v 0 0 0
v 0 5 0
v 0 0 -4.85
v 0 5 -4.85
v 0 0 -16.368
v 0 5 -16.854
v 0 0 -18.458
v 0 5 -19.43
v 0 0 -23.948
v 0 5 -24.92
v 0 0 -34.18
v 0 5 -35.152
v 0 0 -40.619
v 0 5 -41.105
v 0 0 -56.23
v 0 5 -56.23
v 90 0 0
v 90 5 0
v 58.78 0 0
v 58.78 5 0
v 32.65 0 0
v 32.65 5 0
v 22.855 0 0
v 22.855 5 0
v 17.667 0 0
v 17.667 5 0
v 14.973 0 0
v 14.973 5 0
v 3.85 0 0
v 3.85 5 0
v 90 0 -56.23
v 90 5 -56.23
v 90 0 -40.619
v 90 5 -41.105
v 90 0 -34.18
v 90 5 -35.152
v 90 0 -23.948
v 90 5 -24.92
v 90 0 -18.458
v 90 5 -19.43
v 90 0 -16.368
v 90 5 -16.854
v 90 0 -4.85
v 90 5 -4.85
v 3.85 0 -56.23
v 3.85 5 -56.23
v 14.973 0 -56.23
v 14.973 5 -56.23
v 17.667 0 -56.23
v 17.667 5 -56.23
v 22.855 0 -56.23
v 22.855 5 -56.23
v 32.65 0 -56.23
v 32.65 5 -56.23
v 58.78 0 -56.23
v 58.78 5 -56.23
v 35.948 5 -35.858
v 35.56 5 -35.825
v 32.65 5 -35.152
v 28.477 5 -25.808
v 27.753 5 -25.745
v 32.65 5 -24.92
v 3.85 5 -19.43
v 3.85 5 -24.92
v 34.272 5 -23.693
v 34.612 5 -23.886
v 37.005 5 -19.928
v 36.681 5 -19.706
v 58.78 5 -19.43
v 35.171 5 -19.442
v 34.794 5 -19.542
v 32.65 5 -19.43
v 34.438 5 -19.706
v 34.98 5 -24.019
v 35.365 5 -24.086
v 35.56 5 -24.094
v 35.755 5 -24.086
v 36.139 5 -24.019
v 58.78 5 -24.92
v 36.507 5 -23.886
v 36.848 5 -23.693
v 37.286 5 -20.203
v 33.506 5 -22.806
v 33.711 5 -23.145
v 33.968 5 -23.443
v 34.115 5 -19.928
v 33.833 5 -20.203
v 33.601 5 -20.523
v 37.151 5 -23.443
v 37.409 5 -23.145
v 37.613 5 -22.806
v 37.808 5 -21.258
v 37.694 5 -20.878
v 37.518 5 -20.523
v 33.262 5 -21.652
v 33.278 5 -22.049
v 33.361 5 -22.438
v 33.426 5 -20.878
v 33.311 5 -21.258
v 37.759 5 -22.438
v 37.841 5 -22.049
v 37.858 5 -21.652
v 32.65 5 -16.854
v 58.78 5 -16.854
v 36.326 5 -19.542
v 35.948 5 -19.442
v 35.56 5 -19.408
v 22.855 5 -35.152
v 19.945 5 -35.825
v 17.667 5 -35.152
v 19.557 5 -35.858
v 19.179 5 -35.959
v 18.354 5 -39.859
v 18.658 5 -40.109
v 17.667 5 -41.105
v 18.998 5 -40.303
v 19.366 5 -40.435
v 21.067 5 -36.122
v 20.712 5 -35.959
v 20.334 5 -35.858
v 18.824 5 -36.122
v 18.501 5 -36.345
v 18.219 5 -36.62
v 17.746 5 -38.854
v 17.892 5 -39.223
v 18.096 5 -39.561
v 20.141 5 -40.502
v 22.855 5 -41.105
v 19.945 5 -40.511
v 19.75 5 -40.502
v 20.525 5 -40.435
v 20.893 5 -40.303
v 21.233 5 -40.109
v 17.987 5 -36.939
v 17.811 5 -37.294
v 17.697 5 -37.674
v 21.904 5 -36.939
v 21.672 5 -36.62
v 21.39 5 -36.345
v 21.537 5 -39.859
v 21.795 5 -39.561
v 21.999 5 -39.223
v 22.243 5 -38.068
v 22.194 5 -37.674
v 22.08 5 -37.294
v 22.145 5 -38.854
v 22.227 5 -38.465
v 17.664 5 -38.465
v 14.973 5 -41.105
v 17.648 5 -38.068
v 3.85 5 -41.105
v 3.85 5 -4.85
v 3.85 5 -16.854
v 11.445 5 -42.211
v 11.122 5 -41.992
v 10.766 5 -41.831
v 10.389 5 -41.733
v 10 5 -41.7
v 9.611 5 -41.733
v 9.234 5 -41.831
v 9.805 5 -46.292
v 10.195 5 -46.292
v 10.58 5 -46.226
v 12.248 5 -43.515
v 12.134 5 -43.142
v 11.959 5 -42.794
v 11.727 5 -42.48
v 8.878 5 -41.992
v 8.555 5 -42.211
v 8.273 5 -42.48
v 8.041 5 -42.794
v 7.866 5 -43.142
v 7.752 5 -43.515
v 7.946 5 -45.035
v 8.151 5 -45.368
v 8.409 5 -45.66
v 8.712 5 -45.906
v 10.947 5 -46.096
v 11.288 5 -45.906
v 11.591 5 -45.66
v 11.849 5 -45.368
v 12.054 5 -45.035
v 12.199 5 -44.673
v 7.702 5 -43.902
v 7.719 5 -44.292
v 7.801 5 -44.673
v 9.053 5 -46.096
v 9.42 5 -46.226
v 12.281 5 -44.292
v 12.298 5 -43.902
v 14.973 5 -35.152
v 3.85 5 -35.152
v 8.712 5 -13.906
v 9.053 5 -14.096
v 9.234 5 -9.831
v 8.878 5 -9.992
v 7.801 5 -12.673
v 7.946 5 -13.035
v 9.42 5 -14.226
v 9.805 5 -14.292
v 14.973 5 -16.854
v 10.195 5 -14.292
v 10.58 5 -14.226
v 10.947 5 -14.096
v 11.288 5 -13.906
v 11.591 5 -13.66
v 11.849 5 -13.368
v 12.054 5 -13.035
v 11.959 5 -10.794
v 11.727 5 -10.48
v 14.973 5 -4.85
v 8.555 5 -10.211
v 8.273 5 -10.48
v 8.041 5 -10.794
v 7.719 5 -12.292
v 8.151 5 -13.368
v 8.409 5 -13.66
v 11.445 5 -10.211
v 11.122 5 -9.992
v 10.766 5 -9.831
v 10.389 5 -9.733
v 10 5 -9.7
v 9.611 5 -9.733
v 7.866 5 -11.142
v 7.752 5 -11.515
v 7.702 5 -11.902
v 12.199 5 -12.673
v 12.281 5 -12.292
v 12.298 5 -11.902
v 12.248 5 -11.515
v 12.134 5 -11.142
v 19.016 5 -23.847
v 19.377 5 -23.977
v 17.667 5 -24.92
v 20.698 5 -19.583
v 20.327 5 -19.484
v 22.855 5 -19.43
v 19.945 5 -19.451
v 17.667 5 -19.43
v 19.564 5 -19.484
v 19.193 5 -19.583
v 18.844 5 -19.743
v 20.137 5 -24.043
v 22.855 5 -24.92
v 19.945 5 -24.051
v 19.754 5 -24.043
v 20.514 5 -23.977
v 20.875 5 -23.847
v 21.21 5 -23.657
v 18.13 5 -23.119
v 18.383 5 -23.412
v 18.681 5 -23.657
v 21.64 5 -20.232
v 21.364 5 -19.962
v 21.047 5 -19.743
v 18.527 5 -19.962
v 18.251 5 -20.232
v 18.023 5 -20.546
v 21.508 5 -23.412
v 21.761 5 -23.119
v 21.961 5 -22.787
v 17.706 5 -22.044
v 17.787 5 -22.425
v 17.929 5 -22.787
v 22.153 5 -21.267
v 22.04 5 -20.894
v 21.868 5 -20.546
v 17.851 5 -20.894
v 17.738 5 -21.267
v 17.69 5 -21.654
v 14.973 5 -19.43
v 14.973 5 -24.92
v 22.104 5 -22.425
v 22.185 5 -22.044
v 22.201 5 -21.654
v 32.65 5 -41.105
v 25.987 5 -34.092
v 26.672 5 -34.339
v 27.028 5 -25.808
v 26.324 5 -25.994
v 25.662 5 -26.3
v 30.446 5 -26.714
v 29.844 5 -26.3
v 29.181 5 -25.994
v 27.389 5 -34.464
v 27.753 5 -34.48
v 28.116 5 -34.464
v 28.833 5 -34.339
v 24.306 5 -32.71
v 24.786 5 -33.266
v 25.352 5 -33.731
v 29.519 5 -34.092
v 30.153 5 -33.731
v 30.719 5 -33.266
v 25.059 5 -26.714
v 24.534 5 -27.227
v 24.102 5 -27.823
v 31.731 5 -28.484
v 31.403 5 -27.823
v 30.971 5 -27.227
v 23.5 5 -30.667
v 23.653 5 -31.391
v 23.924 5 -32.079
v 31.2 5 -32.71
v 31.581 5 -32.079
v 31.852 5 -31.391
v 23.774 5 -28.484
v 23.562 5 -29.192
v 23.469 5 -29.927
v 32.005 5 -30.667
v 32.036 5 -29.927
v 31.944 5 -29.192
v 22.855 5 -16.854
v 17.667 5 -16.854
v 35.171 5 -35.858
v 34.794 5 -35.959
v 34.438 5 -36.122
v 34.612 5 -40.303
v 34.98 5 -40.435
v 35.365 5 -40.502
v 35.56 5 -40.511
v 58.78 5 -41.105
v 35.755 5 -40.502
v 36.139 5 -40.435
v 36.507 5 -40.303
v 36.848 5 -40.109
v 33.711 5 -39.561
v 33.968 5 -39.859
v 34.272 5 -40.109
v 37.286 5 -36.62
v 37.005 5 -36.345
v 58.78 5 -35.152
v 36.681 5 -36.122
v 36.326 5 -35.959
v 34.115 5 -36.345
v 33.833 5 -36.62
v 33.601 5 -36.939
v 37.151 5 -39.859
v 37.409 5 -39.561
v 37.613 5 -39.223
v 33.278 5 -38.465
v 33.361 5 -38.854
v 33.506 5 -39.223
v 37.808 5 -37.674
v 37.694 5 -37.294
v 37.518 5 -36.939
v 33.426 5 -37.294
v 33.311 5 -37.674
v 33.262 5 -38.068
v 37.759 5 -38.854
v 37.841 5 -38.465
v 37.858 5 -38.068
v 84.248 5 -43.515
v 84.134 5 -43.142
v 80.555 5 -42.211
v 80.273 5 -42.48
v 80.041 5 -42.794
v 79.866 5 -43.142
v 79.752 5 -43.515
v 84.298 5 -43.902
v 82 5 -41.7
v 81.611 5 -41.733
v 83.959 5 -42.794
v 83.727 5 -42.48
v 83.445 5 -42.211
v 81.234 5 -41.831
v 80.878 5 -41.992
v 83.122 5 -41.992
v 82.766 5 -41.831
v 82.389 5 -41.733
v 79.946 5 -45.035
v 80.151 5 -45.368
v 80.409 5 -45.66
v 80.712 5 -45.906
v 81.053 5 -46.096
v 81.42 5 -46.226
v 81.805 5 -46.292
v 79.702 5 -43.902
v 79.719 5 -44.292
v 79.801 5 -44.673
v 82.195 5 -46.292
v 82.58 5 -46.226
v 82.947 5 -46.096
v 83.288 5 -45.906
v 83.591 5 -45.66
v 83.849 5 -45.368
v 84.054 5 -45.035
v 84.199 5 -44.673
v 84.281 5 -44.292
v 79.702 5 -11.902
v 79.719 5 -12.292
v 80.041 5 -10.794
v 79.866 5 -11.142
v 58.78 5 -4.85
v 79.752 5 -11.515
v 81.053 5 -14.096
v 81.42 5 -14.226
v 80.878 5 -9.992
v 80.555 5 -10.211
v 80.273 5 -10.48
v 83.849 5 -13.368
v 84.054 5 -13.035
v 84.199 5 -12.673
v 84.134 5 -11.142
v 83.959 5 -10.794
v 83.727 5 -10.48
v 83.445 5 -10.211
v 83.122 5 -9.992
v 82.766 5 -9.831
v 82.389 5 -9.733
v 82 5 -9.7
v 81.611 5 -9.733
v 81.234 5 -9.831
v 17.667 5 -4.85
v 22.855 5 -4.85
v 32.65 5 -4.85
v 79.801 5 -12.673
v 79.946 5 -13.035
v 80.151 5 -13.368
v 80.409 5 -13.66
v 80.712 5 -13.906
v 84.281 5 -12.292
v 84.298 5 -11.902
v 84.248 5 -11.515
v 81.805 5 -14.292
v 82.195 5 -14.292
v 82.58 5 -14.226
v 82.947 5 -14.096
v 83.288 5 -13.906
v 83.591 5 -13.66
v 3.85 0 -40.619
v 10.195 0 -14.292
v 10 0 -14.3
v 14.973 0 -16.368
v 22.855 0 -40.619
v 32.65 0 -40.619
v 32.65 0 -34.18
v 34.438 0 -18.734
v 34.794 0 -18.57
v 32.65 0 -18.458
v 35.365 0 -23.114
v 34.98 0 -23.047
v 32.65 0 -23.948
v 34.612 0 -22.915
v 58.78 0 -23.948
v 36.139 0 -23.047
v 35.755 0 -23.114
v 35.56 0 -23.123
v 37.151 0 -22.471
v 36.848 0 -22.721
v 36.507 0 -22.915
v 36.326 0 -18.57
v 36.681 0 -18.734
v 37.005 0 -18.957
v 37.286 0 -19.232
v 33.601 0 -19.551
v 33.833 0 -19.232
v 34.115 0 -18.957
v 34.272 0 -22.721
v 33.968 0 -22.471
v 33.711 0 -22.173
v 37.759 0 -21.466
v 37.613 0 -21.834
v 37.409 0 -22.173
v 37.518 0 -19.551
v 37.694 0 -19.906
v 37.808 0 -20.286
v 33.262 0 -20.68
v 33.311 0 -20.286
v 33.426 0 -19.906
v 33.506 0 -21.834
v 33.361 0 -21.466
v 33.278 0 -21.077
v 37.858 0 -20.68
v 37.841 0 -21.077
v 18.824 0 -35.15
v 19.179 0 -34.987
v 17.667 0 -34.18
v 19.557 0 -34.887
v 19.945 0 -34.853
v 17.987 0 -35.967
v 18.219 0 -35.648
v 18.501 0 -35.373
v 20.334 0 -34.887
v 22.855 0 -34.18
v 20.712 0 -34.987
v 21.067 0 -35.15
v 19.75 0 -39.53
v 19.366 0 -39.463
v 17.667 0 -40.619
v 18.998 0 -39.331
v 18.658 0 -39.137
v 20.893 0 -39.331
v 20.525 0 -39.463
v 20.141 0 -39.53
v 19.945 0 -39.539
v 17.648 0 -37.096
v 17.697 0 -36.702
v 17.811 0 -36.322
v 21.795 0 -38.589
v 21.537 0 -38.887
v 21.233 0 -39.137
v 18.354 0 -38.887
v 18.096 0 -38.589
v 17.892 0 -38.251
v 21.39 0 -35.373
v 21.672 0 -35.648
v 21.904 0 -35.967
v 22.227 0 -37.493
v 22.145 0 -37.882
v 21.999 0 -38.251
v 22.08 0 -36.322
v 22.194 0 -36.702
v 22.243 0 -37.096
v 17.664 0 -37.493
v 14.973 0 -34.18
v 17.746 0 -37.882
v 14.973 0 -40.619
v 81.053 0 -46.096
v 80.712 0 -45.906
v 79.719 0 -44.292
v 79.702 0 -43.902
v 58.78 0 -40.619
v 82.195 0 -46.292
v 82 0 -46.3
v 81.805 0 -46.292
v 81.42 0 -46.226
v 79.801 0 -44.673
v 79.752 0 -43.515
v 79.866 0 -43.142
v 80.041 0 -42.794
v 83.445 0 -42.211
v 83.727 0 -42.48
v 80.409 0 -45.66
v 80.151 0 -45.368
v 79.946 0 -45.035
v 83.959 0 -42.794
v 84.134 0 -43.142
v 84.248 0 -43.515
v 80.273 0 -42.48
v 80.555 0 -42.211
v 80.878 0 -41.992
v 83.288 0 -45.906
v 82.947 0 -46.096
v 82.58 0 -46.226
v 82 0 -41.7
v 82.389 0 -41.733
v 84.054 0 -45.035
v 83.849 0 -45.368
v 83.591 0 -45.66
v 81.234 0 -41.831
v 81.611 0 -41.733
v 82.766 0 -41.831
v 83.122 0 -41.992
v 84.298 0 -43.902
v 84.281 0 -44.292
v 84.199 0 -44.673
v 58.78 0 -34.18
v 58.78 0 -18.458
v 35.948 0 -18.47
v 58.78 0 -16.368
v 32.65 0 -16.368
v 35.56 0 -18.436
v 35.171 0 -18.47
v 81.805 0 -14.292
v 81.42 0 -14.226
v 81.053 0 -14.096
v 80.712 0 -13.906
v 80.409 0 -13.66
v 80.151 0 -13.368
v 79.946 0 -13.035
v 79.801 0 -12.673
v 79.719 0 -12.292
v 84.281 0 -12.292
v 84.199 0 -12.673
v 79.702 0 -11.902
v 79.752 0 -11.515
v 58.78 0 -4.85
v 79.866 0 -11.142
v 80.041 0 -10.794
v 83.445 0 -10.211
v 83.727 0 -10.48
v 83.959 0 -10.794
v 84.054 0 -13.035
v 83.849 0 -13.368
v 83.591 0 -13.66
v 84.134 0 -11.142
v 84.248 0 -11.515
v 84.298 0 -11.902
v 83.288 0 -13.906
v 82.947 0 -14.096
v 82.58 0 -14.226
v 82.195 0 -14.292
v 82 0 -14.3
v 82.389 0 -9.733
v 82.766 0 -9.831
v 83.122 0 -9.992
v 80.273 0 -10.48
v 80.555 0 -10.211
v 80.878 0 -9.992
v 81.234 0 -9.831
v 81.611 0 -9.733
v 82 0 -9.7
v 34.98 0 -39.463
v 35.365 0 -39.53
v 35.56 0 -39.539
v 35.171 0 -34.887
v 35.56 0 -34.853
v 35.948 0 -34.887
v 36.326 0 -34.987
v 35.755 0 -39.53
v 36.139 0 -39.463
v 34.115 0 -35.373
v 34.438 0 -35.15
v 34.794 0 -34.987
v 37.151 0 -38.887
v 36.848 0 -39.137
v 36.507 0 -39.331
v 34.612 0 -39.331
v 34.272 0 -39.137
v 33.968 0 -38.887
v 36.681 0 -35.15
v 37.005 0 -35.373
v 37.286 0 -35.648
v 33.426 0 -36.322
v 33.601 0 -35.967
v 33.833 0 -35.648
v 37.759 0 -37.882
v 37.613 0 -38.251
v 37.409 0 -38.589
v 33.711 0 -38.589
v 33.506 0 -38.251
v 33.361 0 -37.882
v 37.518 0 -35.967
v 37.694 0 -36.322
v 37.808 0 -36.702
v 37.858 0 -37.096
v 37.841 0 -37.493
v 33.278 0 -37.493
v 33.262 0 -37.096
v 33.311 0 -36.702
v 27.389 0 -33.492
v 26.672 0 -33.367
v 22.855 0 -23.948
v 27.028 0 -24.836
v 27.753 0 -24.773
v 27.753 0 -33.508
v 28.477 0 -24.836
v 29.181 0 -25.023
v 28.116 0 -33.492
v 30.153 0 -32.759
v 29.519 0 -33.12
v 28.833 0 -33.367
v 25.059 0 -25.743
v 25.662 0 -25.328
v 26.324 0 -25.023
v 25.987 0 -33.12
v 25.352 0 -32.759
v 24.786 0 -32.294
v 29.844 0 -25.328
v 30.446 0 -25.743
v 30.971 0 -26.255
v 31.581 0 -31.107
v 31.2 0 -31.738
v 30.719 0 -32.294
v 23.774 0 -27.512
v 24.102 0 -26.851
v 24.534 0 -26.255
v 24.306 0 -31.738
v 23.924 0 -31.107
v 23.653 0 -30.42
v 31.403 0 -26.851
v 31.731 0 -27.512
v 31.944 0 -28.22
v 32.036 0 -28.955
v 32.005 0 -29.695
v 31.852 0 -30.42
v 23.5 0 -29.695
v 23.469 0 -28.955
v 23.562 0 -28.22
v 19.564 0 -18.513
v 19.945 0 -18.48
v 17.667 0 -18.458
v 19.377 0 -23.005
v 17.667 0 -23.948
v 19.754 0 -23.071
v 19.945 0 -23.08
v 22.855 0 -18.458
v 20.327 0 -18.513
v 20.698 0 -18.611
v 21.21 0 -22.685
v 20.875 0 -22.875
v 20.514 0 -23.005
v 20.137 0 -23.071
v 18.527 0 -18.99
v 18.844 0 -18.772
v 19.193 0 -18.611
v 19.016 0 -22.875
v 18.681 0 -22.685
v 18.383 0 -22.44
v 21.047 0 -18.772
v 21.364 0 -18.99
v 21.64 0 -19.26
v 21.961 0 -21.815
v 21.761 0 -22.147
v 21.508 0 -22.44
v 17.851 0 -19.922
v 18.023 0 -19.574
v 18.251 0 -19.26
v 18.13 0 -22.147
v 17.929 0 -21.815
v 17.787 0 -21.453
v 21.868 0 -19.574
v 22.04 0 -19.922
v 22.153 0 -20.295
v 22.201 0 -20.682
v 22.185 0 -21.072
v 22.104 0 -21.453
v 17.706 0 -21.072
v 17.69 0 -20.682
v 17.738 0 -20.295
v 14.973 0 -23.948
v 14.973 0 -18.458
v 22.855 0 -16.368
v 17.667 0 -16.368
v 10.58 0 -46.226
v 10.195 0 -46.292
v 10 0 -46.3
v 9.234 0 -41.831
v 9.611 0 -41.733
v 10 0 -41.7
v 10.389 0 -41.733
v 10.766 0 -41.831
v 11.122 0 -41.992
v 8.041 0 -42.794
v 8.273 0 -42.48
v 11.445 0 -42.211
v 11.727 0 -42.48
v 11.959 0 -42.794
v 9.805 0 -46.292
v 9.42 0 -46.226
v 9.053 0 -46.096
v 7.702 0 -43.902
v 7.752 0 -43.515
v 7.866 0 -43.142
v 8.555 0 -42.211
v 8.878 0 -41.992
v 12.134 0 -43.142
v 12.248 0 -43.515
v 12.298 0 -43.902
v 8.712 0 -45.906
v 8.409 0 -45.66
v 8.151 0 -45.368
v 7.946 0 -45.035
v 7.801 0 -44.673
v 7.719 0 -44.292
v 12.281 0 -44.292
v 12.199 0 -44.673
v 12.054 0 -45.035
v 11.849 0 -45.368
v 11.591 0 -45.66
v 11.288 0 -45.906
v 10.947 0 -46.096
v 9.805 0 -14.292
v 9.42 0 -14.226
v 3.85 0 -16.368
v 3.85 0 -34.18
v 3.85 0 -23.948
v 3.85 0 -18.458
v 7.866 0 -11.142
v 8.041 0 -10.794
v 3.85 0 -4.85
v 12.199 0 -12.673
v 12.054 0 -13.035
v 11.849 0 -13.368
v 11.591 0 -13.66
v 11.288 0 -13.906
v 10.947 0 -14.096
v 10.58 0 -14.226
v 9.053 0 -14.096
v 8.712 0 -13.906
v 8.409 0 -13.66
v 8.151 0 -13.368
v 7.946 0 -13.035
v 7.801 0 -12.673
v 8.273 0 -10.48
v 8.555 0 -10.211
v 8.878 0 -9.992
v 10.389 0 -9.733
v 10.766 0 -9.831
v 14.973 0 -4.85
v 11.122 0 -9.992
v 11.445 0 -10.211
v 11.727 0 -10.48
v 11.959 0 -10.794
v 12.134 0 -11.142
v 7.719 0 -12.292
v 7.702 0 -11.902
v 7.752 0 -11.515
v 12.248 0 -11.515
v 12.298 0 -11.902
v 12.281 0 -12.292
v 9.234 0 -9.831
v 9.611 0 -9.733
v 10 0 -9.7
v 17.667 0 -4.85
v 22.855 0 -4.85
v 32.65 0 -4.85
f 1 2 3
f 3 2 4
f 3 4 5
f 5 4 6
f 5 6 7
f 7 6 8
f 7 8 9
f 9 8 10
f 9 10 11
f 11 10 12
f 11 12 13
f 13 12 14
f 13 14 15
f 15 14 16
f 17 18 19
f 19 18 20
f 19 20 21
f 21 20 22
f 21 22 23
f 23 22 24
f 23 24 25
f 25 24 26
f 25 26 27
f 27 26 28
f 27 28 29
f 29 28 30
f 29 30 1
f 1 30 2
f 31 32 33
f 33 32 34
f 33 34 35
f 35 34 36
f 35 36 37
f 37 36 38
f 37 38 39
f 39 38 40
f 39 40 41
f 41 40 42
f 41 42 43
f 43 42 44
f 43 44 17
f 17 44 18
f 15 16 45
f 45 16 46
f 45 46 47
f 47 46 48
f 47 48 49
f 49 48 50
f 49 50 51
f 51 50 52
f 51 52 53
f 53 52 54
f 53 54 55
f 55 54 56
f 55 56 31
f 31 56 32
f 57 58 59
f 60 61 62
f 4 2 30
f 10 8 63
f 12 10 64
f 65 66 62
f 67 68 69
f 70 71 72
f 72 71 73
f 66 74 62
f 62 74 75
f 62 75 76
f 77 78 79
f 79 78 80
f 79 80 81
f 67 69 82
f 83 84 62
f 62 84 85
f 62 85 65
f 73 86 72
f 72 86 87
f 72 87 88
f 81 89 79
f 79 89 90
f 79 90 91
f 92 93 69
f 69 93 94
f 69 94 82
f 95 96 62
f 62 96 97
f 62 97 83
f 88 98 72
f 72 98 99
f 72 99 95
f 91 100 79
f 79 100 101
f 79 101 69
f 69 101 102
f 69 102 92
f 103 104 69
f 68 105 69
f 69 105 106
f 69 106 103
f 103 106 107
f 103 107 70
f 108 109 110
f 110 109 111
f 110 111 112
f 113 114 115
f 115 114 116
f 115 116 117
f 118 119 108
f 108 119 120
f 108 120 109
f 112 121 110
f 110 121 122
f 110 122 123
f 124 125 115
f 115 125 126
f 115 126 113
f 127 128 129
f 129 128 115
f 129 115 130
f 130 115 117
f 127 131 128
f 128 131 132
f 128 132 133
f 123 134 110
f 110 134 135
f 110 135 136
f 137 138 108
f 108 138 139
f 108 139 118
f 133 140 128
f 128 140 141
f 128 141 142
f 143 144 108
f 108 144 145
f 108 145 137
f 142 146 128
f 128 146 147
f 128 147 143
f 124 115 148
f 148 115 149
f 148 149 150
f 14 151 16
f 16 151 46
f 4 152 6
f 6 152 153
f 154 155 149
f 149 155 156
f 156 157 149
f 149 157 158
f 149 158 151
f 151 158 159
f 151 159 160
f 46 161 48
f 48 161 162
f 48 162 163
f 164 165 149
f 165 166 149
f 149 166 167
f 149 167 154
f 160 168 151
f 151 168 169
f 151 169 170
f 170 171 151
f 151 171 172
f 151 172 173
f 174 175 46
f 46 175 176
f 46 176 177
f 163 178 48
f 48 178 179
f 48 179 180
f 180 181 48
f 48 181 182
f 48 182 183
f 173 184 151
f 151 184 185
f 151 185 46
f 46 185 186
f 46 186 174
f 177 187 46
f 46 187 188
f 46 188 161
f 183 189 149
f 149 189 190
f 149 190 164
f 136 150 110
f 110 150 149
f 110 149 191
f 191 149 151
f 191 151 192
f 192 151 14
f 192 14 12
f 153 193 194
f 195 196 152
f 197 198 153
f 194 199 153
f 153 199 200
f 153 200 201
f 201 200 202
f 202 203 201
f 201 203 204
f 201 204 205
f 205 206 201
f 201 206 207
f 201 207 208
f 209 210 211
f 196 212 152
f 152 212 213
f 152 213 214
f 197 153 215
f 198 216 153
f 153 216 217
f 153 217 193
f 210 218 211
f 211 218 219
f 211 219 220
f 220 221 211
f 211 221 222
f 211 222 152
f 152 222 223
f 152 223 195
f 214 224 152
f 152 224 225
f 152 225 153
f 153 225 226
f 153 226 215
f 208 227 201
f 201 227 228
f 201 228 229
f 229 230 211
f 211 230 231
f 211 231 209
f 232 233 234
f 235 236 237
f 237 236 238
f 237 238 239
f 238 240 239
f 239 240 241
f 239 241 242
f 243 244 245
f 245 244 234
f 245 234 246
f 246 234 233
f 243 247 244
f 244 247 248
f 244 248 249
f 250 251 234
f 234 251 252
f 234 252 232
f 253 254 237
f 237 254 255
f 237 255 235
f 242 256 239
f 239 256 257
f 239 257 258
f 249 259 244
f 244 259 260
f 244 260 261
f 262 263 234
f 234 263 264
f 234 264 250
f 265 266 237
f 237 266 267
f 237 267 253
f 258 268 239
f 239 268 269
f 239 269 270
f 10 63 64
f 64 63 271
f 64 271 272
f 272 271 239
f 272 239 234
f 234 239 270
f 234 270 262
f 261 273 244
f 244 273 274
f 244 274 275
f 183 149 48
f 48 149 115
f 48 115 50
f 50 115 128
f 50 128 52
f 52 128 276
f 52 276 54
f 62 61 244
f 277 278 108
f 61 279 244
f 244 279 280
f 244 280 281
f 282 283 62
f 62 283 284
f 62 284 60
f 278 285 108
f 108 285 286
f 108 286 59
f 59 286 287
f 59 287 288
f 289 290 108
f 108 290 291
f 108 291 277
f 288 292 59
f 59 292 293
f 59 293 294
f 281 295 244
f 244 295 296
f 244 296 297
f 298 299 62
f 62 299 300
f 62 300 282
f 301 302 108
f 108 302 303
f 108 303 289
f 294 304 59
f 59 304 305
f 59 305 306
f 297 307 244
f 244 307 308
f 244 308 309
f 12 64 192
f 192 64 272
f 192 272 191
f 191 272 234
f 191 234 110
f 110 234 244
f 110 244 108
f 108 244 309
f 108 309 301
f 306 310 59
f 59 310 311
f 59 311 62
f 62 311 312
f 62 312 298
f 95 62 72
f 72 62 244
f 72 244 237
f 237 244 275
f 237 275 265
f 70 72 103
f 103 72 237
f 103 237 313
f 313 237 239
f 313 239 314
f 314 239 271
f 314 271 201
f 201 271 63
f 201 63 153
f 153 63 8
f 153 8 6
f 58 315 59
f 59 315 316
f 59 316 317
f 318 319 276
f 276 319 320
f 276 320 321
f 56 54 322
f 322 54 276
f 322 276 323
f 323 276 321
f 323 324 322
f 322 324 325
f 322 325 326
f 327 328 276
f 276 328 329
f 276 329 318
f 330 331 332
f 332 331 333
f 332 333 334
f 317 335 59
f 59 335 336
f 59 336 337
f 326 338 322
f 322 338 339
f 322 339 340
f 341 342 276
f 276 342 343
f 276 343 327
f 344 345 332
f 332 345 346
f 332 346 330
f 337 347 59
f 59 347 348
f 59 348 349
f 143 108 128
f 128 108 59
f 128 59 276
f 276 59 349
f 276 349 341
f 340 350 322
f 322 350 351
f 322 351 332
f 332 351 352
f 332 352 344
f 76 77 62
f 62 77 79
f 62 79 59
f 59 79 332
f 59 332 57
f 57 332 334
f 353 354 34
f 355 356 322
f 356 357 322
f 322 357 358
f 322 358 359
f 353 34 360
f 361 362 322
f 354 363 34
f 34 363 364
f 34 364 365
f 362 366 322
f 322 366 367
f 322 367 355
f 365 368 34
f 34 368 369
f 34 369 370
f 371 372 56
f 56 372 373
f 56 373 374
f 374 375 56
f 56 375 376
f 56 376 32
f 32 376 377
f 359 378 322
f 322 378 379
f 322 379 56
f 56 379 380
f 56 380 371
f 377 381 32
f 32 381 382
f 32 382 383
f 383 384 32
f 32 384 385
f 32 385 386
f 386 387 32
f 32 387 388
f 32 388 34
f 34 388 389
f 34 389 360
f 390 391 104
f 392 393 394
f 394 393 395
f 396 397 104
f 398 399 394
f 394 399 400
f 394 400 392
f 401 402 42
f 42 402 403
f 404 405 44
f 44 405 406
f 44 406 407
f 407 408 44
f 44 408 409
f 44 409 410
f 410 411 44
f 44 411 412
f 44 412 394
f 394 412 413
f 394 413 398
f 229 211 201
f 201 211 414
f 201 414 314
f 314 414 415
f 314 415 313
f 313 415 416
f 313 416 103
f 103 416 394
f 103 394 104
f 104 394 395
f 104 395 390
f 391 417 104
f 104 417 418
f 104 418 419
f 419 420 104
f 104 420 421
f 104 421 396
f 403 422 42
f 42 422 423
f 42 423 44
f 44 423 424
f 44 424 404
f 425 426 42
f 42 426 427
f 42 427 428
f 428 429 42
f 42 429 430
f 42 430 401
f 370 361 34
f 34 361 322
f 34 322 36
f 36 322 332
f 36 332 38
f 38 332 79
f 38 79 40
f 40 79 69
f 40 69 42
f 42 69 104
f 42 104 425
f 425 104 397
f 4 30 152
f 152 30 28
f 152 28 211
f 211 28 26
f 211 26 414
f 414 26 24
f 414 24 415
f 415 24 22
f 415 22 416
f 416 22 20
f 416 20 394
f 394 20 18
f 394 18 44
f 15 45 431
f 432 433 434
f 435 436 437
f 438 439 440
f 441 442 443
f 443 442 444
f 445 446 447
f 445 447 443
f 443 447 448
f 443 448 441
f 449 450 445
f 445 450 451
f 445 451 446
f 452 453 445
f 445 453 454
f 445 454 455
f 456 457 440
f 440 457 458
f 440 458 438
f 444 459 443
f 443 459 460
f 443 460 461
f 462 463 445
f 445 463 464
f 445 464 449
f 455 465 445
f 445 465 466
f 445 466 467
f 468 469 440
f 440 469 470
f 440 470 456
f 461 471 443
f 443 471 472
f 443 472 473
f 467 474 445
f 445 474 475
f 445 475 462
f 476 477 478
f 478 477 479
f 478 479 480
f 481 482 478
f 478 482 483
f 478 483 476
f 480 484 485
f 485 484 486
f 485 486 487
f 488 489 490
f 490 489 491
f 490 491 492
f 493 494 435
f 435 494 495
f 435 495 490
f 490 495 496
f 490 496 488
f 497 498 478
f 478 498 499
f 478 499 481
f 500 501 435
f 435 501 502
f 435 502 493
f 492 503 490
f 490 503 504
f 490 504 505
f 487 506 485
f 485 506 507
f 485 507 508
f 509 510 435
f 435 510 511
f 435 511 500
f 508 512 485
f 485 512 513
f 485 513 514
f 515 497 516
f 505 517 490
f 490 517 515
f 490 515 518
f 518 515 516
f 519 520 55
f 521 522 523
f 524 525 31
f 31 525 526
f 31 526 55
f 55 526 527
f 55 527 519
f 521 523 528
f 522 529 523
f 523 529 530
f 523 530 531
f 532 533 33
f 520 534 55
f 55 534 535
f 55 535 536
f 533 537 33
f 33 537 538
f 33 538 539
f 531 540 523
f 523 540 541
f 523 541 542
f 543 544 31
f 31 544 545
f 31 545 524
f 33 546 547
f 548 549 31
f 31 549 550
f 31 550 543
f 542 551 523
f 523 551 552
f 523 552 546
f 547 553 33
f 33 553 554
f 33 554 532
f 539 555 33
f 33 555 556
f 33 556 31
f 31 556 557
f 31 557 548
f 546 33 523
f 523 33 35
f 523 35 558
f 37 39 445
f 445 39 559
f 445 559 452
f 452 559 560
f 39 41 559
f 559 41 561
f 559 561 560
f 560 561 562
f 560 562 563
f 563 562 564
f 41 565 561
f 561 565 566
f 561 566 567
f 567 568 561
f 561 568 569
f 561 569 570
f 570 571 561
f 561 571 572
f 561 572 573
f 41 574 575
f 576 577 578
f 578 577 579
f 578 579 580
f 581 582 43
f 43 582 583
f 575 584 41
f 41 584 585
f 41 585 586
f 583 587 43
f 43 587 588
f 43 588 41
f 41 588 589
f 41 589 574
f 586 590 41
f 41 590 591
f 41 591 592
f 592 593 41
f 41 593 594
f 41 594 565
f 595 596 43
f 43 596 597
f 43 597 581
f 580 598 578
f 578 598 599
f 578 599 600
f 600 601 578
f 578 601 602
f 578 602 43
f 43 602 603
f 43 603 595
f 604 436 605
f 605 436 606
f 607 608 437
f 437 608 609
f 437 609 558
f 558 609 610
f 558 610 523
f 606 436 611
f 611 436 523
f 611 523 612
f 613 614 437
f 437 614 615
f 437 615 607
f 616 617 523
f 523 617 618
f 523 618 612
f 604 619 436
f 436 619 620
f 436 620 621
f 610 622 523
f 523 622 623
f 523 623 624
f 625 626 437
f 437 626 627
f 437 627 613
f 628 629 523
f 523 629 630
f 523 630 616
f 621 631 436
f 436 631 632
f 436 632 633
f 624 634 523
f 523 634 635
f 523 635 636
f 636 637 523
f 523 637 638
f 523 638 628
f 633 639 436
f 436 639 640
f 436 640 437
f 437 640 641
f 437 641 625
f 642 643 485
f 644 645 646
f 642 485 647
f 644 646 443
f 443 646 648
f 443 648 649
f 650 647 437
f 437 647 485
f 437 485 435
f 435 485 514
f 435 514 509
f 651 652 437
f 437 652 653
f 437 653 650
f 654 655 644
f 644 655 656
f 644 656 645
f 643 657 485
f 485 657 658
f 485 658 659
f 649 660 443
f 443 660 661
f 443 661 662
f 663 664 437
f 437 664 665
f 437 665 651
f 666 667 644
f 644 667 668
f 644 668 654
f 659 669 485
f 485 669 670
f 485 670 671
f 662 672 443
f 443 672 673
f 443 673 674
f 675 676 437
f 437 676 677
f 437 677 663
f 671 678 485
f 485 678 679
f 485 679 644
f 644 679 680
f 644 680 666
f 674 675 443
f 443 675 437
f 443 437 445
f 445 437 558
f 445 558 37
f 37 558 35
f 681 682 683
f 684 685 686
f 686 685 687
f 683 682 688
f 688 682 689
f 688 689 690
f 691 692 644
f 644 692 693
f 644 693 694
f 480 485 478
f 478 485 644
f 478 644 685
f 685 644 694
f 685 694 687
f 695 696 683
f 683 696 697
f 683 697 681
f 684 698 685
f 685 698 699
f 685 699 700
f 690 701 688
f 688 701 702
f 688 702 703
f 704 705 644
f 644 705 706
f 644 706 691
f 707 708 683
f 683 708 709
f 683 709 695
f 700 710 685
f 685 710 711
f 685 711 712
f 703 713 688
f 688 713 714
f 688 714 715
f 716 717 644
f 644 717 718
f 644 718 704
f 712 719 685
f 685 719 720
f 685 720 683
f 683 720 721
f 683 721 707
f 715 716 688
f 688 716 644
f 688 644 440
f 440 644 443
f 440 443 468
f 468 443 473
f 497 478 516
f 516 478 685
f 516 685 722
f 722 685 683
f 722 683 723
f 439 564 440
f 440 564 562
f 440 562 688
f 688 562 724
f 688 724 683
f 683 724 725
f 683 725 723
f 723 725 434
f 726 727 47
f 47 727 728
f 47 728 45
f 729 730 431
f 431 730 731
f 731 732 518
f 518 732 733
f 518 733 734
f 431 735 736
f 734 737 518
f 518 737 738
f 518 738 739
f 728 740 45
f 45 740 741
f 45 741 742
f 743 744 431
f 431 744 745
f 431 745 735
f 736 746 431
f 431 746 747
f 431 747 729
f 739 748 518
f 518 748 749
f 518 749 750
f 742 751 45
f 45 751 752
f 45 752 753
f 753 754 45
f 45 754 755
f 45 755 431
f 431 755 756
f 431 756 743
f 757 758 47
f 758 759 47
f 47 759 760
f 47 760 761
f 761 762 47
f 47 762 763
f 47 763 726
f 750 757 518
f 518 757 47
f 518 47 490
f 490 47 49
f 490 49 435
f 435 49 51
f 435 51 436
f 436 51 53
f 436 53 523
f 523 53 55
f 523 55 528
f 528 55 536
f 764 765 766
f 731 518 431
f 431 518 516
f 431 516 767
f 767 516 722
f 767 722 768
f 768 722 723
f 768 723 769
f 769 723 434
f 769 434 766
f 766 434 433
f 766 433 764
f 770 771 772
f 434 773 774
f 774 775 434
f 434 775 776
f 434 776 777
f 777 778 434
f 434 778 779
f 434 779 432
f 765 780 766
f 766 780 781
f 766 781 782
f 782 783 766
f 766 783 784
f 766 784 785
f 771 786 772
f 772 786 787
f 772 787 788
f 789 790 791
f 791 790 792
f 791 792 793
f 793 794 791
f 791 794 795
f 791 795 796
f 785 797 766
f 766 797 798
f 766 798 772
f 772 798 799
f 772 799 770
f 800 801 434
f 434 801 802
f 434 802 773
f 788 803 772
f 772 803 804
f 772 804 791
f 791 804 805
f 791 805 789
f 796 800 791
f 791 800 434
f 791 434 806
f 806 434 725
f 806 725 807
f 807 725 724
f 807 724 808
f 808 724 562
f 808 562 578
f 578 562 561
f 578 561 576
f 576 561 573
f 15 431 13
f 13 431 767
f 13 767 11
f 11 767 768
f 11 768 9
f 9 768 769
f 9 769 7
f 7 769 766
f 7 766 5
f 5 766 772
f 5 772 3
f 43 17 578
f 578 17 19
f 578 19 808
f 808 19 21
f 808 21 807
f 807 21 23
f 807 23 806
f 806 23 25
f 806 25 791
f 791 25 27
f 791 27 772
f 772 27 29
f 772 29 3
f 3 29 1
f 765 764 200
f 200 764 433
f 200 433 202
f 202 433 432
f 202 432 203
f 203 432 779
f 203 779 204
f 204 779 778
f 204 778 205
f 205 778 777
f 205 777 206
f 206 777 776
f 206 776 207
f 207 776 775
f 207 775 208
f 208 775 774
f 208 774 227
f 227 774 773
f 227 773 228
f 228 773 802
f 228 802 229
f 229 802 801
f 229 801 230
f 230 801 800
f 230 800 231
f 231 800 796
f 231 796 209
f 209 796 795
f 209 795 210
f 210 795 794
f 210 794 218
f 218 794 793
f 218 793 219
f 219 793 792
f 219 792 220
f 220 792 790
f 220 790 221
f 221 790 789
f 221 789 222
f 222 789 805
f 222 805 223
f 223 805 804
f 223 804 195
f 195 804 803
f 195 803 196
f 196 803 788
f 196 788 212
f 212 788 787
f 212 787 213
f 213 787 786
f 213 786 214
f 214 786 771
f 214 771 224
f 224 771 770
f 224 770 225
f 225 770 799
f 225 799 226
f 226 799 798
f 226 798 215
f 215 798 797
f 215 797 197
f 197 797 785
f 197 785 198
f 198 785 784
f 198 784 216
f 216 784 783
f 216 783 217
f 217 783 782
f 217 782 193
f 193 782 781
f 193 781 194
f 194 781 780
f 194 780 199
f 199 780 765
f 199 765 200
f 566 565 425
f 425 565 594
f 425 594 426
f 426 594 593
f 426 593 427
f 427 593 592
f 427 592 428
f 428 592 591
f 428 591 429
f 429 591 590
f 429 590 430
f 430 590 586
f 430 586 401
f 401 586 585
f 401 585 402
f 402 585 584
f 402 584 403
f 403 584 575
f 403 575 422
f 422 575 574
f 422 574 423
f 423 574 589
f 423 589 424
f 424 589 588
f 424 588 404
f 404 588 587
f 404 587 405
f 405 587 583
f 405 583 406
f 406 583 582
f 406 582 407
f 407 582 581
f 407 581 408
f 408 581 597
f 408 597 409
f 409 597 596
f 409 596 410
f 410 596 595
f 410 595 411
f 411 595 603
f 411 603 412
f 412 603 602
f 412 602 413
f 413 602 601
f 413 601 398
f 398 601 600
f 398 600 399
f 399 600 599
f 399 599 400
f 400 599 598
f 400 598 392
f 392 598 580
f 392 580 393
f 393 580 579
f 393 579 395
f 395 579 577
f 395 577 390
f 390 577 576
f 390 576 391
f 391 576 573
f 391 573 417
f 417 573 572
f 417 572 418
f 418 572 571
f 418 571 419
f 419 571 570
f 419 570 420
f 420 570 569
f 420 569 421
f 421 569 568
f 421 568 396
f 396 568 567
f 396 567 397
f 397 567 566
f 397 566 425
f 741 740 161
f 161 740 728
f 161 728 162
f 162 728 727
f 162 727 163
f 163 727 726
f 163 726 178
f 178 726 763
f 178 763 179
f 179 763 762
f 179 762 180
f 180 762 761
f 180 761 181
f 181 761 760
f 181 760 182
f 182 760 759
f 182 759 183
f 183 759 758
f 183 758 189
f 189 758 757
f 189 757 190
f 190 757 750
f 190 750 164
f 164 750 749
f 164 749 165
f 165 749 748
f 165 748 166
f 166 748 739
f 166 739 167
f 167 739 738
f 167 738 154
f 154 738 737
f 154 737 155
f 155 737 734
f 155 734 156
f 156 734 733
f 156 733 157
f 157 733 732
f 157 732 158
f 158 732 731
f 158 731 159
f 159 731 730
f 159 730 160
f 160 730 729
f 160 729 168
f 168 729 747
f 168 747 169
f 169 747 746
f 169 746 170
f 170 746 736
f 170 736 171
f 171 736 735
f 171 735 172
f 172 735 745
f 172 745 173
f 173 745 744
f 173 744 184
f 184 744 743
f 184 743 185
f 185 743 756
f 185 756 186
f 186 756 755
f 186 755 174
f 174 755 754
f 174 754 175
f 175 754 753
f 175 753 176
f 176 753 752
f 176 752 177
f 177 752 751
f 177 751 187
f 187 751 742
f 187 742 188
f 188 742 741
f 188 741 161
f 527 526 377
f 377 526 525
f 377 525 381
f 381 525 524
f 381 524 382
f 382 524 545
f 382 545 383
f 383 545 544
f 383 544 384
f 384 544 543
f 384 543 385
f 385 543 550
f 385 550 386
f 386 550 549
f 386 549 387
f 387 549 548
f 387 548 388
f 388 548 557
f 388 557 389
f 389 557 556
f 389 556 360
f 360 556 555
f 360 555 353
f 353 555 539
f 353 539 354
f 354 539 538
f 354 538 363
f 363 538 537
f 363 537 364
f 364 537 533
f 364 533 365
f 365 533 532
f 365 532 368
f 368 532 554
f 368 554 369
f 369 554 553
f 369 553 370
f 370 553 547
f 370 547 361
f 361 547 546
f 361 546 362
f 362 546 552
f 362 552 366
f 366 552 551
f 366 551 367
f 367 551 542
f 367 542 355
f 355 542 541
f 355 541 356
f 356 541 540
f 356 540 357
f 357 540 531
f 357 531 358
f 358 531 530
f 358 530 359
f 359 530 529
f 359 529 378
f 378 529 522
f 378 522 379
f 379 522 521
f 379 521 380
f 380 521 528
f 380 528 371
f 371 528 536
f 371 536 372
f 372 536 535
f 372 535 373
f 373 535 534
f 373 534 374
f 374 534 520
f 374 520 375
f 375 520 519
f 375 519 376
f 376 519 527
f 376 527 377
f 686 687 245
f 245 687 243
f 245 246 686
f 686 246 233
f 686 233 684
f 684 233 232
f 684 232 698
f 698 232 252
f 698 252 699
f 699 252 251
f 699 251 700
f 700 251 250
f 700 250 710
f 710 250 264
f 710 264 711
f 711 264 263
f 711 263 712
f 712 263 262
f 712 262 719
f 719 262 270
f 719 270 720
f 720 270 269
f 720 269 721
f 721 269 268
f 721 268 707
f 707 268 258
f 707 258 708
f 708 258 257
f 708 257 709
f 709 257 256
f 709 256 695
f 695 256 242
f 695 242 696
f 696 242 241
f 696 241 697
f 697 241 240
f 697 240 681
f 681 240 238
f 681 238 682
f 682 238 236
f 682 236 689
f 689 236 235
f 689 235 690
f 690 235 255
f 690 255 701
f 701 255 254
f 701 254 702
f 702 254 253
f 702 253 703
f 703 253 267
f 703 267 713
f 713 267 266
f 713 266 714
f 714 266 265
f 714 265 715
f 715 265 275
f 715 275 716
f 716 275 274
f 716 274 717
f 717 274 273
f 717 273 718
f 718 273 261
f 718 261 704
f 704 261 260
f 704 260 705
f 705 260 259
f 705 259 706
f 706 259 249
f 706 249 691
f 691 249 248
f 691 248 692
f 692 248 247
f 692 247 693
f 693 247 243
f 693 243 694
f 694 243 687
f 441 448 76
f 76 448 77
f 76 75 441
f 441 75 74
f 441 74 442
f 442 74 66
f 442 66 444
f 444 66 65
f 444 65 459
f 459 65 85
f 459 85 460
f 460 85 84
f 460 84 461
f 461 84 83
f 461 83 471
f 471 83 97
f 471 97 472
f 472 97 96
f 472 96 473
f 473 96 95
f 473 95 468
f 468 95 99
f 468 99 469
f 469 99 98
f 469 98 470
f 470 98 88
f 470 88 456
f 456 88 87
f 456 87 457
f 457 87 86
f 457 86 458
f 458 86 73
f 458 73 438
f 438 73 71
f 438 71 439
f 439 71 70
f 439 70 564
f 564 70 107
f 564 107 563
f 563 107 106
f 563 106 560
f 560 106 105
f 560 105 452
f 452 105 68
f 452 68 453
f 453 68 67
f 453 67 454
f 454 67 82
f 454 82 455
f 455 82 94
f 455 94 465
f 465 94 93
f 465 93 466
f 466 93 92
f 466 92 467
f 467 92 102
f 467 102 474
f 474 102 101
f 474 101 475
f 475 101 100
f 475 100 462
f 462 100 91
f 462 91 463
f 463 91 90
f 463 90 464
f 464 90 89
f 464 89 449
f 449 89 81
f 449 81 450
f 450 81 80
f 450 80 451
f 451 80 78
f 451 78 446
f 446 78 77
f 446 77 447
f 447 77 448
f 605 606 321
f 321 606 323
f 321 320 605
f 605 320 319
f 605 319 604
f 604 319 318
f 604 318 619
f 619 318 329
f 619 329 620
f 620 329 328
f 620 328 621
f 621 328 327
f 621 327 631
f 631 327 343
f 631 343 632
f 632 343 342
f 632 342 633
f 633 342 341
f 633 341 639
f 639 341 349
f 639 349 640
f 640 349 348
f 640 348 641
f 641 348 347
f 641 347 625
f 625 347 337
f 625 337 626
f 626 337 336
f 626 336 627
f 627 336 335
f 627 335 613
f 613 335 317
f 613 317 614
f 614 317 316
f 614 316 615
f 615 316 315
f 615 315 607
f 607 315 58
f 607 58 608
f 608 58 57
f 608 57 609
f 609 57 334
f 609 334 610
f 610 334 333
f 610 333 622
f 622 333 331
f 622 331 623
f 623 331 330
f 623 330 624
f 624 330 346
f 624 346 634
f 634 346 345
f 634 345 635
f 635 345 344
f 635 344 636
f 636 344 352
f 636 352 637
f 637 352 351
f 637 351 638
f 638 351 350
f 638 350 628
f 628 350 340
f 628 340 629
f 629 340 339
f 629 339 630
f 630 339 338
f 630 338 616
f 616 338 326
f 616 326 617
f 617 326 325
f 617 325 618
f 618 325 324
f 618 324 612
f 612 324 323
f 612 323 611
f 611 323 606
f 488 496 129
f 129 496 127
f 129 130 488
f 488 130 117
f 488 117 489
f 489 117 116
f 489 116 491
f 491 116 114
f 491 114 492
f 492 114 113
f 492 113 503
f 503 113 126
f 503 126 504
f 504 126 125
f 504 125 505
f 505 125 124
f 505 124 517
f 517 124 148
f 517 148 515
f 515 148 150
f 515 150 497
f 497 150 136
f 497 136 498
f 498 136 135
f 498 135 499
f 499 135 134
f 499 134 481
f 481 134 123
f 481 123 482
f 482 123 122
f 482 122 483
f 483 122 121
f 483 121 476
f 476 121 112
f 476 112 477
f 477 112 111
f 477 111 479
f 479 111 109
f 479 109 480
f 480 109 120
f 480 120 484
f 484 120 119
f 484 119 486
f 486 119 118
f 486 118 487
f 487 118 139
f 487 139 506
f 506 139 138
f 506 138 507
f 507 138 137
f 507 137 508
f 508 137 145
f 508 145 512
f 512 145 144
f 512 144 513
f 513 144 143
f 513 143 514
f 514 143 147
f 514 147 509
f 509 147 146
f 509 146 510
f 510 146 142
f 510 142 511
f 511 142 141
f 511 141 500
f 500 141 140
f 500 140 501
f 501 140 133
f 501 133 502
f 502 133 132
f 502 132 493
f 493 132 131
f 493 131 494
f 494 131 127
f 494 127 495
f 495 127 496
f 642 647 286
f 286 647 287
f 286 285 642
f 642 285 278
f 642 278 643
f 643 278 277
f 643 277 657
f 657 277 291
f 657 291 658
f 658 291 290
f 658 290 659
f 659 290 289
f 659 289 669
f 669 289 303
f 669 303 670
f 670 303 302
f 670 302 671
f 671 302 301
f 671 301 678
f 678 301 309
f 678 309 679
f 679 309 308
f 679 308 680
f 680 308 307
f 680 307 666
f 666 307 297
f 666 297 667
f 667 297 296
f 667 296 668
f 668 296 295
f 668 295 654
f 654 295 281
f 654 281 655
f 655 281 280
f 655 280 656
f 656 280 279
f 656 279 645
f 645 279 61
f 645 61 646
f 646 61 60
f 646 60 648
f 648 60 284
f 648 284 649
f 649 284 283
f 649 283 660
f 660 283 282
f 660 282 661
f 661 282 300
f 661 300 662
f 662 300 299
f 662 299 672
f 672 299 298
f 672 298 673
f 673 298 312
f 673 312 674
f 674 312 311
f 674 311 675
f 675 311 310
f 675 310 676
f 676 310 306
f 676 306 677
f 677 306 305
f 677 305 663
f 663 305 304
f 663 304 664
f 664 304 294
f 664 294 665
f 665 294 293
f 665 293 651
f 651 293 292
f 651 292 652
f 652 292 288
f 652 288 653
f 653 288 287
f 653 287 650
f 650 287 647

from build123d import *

# Parameters (mm, degrees)
SKETCH1_W           = 90
SKETCH1_H           = 56.23
BOSS_EXTRUDE1_DEPTH = 5
SKETCH2_R           = 2.3
CUT_EXTRUDE1_DEPTH  = 15
SKETCH7_R           = 2.3
CUT_EXTRUDE3_DEPTH  = 45
SKETCH12_R          = 2.257742522
SKETCH12_R_2        = 2.3
SKETCH12_R_3        = 4.287283452
CUT_EXTRUDE5_DEPTH  = 20


with BuildPart() as part:
    # Sketch1 → Boss-Extrude1 (new body)
    with BuildSketch(Plane(origin=(0, 0, 0), x_dir=(1, 0, 0), z_dir=(0, 1, 0))):
        with Locations((45, 28.115)):
            Rectangle(SKETCH1_W, SKETCH1_H)
    extrude(amount=BOSS_EXTRUDE1_DEPTH)

    # Sketch2 → Cut-Extrude1 (cut)
    with BuildSketch(Plane(origin=(0, 5, 0), x_dir=(1, 0, 0), z_dir=(0, 1, 0))):
        with Locations(Location((82, 12, 0), (0, 0, 270))):
            Circle(SKETCH2_R)
        with Locations(Location((10, 12, 0), (0, 0, 270))):
            Circle(SKETCH2_R)
    extrude(amount=-CUT_EXTRUDE1_DEPTH, mode=Mode.SUBTRACT)

    # Sketch7 → Cut-Extrude3 (cut)
    with BuildSketch(Plane(origin=(0, 5, 0), x_dir=(1, 0, 0), z_dir=(0, 1, 0))):
        with Locations(Location((82, 44, 0), (0, 0, 270))):
            Circle(SKETCH7_R)
        with Locations(Location((10, 44, 0), (0, 0, 270))):
            Circle(SKETCH7_R)
    extrude(amount=-CUT_EXTRUDE3_DEPTH, mode=Mode.SUBTRACT)

    # Sketch12 → Cut-Extrude5 (cut)
    with BuildSketch(Plane(origin=(0, 15.35002401, -2.983742412), x_dir=(-1, 0, 0), z_dir=(0, 0.9816271834476639, -0.19080899537654525))):
        with Locations(Location((-19.945482257, -20.397734662, 0), (0, 0, 270))):
            Circle(SKETCH12_R)
        with Locations(Location((-35.559756703, -20.397734662, 0), (0, 0, 270))):
            Circle(SKETCH12_R_2)
        with Locations(Location((-35.559756703, -36.512466621, 0), (0, 0, 270))):
            Circle(SKETCH12_R_2)
        with Locations(Location((-19.945482257, -36.512466621, 0), (0, 0, 270))):
            Circle(SKETCH12_R_2)
        with Locations(Location((-27.75261948, -28.605237896, 0), (0, 0, 270))):
            Circle(SKETCH12_R_3)
    extrude(amount=-CUT_EXTRUDE5_DEPTH, mode=Mode.SUBTRACT)


solid = part.part
